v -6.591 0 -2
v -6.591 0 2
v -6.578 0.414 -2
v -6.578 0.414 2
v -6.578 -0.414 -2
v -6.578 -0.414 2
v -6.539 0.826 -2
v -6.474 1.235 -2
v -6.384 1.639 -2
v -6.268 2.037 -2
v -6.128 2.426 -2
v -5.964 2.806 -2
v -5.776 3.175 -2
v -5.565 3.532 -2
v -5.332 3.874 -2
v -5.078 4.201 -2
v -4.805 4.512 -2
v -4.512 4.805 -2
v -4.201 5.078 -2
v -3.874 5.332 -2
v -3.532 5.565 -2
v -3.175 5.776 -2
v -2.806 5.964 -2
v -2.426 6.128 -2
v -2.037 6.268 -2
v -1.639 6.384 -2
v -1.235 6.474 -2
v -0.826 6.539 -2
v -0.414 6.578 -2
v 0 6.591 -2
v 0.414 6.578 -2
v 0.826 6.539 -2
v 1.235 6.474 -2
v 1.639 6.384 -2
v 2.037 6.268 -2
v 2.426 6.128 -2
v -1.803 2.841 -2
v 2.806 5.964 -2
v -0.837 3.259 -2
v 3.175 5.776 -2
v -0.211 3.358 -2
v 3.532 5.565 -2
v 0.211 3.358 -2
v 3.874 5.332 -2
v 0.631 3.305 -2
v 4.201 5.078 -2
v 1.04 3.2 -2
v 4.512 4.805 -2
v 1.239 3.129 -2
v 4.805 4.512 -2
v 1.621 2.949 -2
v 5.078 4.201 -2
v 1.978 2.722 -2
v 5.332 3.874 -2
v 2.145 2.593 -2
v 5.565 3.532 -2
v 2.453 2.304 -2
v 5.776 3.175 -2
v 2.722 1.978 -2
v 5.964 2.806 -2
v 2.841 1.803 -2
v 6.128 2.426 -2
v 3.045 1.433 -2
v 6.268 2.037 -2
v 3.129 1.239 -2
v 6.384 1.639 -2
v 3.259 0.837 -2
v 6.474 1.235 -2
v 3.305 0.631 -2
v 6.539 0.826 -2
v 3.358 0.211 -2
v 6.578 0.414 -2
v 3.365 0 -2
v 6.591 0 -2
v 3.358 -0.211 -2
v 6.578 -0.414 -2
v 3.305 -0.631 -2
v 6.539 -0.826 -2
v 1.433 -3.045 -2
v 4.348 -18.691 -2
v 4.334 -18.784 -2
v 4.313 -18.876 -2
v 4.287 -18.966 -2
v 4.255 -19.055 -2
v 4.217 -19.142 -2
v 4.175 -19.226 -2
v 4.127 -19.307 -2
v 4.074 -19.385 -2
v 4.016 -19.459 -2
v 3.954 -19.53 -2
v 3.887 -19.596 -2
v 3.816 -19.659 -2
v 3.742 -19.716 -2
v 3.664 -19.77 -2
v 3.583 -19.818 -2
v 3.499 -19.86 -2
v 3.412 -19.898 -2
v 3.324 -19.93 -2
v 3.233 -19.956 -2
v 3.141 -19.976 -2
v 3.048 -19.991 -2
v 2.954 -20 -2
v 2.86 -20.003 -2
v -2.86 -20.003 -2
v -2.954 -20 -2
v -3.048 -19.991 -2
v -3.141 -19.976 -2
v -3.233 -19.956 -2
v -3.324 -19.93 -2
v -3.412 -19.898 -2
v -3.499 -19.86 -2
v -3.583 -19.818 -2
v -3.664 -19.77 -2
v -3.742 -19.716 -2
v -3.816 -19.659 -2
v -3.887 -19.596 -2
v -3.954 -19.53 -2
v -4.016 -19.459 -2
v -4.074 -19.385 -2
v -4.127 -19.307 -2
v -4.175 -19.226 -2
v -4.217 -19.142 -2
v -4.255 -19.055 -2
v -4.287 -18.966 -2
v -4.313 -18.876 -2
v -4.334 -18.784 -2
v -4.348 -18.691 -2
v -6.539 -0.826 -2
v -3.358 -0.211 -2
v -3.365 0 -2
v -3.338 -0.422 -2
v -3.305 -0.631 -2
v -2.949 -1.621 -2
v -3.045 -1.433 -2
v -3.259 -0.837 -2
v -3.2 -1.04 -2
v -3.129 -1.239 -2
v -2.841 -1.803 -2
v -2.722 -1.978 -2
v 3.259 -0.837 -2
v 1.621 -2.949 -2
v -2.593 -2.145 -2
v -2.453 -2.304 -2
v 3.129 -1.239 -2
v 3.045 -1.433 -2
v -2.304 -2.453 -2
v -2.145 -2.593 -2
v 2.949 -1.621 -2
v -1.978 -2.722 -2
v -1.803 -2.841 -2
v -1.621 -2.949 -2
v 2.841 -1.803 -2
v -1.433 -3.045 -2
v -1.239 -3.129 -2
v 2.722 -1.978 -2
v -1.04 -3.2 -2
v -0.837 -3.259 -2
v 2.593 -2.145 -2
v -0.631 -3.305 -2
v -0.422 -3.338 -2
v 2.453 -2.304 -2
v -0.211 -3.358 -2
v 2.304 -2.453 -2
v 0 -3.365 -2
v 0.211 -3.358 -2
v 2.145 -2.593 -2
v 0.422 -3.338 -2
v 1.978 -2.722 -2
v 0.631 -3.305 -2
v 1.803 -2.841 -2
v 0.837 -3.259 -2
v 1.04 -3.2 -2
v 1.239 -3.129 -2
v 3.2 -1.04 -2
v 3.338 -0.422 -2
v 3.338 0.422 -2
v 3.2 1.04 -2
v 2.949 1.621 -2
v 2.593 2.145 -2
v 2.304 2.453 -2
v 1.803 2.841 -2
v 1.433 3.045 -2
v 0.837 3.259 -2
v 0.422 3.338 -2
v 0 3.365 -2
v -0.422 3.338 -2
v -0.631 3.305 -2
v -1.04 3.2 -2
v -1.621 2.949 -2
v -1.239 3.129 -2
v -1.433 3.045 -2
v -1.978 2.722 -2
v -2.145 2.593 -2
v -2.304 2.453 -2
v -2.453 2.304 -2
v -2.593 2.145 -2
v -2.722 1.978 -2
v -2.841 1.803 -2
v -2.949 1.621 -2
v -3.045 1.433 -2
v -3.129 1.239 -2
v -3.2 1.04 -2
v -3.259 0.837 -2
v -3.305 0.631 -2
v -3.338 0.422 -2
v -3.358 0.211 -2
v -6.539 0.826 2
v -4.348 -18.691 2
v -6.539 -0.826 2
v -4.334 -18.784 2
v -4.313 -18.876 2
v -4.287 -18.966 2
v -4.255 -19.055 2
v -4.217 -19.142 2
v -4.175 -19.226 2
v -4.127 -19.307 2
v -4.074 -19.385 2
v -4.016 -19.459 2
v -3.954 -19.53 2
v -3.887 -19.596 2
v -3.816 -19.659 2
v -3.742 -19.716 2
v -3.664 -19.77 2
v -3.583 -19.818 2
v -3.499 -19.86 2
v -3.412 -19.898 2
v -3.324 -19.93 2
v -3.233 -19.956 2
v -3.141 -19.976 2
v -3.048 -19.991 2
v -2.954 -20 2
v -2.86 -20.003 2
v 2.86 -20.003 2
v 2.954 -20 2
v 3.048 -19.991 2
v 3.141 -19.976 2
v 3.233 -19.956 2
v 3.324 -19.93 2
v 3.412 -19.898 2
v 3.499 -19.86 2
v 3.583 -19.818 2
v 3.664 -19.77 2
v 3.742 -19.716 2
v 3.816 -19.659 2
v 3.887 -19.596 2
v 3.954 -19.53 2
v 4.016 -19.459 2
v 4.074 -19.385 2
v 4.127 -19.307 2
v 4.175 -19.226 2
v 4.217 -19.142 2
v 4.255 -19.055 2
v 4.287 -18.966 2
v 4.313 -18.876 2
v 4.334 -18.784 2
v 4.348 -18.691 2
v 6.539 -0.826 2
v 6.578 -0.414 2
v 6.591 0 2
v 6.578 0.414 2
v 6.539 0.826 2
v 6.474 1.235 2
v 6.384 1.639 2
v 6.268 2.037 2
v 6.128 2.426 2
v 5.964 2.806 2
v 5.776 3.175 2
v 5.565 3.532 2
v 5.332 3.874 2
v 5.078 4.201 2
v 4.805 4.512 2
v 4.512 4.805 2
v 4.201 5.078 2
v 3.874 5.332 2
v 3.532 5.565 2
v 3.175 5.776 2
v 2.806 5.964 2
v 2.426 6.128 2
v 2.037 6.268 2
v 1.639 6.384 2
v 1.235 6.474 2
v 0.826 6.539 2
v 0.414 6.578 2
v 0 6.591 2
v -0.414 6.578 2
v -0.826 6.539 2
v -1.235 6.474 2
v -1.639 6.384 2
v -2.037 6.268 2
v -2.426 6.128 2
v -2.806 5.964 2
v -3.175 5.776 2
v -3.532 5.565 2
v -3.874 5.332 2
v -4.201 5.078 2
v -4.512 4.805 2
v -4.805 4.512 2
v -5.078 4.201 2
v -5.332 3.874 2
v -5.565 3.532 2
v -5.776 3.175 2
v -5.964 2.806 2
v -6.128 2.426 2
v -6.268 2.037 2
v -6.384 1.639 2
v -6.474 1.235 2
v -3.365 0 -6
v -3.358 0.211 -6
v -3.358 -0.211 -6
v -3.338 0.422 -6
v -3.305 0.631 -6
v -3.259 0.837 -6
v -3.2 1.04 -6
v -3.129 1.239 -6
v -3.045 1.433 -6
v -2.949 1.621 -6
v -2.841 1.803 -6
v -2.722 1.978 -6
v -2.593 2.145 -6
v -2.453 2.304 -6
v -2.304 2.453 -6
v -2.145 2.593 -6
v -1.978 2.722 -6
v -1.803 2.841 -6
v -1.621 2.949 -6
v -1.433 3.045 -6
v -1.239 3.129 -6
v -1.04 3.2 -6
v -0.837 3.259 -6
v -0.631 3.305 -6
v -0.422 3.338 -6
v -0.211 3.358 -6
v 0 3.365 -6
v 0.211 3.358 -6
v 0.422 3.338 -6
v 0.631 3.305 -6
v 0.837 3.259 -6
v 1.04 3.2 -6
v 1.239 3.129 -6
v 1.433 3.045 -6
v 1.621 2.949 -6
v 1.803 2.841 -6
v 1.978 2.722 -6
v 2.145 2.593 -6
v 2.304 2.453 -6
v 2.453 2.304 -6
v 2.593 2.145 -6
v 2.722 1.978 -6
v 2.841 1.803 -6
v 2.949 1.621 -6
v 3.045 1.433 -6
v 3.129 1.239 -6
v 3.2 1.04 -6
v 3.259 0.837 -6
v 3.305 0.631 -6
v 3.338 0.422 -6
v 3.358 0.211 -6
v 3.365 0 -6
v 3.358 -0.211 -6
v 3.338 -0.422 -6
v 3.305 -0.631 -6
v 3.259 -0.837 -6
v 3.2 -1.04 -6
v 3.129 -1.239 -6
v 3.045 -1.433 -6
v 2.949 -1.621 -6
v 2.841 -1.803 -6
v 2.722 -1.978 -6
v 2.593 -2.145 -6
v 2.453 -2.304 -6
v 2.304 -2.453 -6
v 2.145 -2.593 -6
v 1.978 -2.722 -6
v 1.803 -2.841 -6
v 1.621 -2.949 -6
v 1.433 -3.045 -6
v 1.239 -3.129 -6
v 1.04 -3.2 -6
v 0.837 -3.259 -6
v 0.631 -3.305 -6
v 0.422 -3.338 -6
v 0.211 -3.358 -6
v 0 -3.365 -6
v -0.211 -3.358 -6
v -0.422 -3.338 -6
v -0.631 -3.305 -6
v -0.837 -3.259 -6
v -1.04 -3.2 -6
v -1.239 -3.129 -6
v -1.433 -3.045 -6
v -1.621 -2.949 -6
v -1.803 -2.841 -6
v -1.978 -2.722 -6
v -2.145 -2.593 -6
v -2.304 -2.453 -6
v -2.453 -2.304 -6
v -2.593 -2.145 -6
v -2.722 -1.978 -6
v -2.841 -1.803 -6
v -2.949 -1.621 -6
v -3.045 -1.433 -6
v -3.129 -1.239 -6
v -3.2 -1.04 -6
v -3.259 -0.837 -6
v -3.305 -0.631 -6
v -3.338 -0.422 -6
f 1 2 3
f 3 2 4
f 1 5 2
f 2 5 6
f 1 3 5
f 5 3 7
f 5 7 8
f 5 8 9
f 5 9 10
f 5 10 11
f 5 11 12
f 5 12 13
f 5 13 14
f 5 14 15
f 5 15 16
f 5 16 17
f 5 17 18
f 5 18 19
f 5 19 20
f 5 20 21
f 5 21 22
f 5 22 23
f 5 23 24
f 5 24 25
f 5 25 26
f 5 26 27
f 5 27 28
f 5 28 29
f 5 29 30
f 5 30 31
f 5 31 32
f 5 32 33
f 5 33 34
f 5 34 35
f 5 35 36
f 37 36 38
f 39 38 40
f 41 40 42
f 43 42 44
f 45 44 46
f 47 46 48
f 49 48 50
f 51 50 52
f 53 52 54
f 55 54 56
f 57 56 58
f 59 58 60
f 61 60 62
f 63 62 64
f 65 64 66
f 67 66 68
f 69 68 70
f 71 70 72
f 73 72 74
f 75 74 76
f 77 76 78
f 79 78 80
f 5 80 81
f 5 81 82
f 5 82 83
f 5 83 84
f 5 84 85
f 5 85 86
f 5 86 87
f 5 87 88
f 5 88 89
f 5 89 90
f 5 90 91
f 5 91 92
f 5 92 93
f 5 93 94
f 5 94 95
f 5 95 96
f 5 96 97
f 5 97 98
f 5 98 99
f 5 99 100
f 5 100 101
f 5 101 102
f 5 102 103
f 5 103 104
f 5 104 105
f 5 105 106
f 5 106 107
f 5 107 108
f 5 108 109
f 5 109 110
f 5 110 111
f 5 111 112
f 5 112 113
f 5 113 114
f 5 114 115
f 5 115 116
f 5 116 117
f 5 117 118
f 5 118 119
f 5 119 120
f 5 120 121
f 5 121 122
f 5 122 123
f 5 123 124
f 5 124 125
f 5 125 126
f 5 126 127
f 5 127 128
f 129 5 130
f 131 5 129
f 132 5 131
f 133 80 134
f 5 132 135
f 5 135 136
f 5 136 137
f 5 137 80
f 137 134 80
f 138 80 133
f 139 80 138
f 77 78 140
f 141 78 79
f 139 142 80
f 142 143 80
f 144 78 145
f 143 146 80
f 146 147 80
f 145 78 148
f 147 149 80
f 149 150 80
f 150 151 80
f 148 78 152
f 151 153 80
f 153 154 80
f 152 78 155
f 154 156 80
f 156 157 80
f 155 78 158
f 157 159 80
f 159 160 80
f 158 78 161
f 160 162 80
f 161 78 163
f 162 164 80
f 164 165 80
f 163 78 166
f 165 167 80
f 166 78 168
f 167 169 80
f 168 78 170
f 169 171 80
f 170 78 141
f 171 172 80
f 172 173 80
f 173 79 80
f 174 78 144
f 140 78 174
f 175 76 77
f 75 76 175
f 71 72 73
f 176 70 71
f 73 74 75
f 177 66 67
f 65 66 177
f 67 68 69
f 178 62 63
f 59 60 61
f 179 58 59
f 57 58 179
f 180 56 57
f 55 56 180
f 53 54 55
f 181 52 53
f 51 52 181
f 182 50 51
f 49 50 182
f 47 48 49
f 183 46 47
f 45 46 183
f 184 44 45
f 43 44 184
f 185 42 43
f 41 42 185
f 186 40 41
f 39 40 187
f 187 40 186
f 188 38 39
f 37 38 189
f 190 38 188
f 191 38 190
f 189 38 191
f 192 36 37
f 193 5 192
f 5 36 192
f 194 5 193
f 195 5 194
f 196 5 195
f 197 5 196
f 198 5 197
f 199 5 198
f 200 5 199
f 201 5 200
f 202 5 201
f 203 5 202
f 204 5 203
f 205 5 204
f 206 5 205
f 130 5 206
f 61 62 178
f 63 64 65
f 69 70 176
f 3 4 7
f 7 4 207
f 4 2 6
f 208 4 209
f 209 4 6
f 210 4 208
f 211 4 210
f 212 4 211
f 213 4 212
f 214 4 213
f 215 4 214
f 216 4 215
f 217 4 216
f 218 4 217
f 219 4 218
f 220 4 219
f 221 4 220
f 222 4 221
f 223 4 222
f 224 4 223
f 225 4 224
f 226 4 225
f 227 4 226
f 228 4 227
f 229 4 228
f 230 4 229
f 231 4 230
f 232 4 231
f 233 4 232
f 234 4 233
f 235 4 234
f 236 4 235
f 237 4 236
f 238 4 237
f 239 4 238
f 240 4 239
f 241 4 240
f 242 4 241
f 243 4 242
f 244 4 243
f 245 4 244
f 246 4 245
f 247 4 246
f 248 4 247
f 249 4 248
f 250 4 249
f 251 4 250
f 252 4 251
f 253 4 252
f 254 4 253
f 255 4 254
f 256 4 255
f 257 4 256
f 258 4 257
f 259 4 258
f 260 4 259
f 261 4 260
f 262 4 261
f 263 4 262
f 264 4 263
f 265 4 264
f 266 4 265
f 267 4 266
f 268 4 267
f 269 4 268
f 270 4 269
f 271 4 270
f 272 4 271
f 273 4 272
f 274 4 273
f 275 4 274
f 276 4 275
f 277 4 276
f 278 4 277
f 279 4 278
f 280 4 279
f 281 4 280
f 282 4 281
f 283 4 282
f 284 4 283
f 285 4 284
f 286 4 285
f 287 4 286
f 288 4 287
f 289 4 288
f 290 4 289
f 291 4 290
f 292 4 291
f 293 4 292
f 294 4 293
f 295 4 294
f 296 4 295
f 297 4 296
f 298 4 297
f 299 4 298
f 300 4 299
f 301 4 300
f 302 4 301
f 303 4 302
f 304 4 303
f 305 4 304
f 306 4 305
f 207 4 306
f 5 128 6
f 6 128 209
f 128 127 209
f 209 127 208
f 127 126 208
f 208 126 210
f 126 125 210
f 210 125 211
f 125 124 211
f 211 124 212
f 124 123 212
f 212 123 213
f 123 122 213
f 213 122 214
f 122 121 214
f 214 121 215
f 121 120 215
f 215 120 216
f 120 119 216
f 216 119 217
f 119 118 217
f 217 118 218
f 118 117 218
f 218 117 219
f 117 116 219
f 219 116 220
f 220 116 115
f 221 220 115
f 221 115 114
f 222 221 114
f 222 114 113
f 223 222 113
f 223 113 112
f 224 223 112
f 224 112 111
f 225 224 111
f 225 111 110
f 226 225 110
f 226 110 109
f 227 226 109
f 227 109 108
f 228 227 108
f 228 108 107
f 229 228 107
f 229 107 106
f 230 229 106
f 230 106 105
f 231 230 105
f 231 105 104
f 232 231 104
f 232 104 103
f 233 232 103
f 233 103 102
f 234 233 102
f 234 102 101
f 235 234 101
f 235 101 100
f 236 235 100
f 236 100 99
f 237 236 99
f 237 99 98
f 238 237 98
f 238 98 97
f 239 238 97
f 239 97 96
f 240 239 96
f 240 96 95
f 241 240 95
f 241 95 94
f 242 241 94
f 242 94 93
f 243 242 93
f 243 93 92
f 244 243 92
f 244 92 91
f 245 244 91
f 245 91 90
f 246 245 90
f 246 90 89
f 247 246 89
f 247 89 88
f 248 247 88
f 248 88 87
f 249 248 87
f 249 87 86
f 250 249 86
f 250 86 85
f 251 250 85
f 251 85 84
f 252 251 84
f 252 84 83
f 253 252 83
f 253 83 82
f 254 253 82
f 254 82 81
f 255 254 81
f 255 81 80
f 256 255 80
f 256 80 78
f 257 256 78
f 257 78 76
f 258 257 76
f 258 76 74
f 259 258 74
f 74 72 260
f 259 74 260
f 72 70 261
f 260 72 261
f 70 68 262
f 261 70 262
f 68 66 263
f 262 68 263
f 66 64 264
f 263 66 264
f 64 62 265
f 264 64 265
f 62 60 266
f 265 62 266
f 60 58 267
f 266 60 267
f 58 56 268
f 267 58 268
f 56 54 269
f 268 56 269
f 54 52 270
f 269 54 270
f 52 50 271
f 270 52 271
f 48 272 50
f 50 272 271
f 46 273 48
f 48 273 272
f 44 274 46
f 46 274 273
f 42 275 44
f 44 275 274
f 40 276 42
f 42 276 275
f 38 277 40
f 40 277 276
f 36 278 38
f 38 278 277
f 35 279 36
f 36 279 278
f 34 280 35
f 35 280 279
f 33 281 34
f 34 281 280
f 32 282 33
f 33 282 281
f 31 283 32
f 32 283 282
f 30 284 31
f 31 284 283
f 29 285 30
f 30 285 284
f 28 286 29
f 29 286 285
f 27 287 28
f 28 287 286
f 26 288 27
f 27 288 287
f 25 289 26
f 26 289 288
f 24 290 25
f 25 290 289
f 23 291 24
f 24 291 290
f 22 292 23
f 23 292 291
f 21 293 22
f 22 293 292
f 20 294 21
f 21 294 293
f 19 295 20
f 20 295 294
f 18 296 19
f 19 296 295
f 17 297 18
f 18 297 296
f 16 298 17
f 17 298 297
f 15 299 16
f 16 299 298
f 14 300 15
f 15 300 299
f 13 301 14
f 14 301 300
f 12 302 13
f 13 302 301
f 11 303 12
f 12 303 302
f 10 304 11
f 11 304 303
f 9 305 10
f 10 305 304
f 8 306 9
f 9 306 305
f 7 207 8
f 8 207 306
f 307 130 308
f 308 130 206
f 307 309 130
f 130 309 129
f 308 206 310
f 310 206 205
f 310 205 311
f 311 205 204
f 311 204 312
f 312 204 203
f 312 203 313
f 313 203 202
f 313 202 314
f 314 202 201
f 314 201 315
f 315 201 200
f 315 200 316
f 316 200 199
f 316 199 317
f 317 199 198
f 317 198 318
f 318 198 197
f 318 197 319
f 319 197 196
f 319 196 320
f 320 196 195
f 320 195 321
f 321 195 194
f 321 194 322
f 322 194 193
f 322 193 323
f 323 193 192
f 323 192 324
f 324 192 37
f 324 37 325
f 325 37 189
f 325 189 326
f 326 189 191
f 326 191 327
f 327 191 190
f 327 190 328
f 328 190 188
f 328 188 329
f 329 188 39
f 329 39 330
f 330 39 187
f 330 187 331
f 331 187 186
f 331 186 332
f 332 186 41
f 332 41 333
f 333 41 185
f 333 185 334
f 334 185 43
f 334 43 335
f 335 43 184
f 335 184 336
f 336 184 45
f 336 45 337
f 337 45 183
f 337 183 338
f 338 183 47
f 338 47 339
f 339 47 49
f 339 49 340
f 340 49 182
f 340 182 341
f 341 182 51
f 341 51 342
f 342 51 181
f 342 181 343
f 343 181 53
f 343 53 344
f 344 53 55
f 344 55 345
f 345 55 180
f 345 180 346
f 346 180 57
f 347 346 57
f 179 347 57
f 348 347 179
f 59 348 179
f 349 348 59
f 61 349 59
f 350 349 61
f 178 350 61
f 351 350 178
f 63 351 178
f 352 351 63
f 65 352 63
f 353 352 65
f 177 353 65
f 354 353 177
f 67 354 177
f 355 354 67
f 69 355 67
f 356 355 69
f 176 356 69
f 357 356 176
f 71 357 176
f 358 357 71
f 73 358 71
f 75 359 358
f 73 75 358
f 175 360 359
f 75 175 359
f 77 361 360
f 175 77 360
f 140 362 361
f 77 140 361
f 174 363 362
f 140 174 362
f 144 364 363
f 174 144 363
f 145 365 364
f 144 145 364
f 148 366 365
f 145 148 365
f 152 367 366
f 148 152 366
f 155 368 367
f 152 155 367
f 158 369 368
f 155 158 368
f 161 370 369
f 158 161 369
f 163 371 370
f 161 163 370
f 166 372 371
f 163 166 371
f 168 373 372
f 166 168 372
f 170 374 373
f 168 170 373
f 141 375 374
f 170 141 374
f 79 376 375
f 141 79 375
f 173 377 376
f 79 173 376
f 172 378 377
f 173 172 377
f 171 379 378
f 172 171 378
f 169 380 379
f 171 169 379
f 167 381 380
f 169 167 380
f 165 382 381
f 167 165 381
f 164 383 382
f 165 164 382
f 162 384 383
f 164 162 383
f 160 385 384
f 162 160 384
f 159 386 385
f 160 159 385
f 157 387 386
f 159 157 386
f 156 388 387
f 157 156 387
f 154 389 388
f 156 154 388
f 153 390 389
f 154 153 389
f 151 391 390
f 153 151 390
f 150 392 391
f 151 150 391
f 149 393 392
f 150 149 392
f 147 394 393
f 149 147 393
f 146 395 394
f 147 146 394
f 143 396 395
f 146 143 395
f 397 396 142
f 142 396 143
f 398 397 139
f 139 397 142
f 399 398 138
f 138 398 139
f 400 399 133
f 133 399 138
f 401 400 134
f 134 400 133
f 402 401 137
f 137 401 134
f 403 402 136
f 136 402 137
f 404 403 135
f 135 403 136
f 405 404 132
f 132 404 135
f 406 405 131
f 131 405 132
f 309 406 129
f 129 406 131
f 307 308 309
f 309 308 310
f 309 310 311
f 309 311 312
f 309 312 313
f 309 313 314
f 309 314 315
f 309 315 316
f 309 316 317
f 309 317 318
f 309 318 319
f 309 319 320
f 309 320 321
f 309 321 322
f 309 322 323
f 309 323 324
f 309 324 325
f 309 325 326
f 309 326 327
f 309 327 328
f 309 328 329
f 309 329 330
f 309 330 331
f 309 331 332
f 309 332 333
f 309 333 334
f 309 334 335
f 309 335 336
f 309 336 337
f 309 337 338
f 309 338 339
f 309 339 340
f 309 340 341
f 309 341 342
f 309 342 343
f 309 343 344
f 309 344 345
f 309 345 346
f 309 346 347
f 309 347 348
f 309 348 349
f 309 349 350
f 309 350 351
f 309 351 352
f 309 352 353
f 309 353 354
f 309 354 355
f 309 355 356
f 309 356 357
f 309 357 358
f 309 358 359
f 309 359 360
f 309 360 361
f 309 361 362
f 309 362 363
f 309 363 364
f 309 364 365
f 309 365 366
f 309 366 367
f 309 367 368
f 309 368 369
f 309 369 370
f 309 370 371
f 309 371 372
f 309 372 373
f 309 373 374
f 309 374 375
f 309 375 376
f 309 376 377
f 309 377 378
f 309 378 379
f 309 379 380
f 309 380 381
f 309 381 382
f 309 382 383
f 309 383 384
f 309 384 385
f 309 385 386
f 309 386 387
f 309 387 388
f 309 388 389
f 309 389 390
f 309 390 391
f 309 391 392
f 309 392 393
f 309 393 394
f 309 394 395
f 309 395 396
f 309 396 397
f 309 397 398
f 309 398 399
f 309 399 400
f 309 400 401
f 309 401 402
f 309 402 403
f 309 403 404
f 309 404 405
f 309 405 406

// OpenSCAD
//CS474 Final Project Module
//Stephen Stucky, Sam Chuks, Josh Pritchett
//Unites in MM

//This is the positive of the toothbrush insert
//Subtract this to get a space the insert can fit into
$fn = 100;
module insertPositive() {
	//center cylinder tab thing-a-majig
translate([0,0,-2]){
	cylinder(8, r=3.3650, center=true);
}
	
	hull() {
		hull() {
			translate([2.8602, -18.5030, 0]) {
				cylinder(4, r=1.5, center=true);
			}

			translate([-2.8602, -18.5030, 0]) {
				cylinder(4, r=1.5, center=true);
			}
		}

		cylinder(4, r=6.5910, center=true);
	}
	
} 

insertPositive();
